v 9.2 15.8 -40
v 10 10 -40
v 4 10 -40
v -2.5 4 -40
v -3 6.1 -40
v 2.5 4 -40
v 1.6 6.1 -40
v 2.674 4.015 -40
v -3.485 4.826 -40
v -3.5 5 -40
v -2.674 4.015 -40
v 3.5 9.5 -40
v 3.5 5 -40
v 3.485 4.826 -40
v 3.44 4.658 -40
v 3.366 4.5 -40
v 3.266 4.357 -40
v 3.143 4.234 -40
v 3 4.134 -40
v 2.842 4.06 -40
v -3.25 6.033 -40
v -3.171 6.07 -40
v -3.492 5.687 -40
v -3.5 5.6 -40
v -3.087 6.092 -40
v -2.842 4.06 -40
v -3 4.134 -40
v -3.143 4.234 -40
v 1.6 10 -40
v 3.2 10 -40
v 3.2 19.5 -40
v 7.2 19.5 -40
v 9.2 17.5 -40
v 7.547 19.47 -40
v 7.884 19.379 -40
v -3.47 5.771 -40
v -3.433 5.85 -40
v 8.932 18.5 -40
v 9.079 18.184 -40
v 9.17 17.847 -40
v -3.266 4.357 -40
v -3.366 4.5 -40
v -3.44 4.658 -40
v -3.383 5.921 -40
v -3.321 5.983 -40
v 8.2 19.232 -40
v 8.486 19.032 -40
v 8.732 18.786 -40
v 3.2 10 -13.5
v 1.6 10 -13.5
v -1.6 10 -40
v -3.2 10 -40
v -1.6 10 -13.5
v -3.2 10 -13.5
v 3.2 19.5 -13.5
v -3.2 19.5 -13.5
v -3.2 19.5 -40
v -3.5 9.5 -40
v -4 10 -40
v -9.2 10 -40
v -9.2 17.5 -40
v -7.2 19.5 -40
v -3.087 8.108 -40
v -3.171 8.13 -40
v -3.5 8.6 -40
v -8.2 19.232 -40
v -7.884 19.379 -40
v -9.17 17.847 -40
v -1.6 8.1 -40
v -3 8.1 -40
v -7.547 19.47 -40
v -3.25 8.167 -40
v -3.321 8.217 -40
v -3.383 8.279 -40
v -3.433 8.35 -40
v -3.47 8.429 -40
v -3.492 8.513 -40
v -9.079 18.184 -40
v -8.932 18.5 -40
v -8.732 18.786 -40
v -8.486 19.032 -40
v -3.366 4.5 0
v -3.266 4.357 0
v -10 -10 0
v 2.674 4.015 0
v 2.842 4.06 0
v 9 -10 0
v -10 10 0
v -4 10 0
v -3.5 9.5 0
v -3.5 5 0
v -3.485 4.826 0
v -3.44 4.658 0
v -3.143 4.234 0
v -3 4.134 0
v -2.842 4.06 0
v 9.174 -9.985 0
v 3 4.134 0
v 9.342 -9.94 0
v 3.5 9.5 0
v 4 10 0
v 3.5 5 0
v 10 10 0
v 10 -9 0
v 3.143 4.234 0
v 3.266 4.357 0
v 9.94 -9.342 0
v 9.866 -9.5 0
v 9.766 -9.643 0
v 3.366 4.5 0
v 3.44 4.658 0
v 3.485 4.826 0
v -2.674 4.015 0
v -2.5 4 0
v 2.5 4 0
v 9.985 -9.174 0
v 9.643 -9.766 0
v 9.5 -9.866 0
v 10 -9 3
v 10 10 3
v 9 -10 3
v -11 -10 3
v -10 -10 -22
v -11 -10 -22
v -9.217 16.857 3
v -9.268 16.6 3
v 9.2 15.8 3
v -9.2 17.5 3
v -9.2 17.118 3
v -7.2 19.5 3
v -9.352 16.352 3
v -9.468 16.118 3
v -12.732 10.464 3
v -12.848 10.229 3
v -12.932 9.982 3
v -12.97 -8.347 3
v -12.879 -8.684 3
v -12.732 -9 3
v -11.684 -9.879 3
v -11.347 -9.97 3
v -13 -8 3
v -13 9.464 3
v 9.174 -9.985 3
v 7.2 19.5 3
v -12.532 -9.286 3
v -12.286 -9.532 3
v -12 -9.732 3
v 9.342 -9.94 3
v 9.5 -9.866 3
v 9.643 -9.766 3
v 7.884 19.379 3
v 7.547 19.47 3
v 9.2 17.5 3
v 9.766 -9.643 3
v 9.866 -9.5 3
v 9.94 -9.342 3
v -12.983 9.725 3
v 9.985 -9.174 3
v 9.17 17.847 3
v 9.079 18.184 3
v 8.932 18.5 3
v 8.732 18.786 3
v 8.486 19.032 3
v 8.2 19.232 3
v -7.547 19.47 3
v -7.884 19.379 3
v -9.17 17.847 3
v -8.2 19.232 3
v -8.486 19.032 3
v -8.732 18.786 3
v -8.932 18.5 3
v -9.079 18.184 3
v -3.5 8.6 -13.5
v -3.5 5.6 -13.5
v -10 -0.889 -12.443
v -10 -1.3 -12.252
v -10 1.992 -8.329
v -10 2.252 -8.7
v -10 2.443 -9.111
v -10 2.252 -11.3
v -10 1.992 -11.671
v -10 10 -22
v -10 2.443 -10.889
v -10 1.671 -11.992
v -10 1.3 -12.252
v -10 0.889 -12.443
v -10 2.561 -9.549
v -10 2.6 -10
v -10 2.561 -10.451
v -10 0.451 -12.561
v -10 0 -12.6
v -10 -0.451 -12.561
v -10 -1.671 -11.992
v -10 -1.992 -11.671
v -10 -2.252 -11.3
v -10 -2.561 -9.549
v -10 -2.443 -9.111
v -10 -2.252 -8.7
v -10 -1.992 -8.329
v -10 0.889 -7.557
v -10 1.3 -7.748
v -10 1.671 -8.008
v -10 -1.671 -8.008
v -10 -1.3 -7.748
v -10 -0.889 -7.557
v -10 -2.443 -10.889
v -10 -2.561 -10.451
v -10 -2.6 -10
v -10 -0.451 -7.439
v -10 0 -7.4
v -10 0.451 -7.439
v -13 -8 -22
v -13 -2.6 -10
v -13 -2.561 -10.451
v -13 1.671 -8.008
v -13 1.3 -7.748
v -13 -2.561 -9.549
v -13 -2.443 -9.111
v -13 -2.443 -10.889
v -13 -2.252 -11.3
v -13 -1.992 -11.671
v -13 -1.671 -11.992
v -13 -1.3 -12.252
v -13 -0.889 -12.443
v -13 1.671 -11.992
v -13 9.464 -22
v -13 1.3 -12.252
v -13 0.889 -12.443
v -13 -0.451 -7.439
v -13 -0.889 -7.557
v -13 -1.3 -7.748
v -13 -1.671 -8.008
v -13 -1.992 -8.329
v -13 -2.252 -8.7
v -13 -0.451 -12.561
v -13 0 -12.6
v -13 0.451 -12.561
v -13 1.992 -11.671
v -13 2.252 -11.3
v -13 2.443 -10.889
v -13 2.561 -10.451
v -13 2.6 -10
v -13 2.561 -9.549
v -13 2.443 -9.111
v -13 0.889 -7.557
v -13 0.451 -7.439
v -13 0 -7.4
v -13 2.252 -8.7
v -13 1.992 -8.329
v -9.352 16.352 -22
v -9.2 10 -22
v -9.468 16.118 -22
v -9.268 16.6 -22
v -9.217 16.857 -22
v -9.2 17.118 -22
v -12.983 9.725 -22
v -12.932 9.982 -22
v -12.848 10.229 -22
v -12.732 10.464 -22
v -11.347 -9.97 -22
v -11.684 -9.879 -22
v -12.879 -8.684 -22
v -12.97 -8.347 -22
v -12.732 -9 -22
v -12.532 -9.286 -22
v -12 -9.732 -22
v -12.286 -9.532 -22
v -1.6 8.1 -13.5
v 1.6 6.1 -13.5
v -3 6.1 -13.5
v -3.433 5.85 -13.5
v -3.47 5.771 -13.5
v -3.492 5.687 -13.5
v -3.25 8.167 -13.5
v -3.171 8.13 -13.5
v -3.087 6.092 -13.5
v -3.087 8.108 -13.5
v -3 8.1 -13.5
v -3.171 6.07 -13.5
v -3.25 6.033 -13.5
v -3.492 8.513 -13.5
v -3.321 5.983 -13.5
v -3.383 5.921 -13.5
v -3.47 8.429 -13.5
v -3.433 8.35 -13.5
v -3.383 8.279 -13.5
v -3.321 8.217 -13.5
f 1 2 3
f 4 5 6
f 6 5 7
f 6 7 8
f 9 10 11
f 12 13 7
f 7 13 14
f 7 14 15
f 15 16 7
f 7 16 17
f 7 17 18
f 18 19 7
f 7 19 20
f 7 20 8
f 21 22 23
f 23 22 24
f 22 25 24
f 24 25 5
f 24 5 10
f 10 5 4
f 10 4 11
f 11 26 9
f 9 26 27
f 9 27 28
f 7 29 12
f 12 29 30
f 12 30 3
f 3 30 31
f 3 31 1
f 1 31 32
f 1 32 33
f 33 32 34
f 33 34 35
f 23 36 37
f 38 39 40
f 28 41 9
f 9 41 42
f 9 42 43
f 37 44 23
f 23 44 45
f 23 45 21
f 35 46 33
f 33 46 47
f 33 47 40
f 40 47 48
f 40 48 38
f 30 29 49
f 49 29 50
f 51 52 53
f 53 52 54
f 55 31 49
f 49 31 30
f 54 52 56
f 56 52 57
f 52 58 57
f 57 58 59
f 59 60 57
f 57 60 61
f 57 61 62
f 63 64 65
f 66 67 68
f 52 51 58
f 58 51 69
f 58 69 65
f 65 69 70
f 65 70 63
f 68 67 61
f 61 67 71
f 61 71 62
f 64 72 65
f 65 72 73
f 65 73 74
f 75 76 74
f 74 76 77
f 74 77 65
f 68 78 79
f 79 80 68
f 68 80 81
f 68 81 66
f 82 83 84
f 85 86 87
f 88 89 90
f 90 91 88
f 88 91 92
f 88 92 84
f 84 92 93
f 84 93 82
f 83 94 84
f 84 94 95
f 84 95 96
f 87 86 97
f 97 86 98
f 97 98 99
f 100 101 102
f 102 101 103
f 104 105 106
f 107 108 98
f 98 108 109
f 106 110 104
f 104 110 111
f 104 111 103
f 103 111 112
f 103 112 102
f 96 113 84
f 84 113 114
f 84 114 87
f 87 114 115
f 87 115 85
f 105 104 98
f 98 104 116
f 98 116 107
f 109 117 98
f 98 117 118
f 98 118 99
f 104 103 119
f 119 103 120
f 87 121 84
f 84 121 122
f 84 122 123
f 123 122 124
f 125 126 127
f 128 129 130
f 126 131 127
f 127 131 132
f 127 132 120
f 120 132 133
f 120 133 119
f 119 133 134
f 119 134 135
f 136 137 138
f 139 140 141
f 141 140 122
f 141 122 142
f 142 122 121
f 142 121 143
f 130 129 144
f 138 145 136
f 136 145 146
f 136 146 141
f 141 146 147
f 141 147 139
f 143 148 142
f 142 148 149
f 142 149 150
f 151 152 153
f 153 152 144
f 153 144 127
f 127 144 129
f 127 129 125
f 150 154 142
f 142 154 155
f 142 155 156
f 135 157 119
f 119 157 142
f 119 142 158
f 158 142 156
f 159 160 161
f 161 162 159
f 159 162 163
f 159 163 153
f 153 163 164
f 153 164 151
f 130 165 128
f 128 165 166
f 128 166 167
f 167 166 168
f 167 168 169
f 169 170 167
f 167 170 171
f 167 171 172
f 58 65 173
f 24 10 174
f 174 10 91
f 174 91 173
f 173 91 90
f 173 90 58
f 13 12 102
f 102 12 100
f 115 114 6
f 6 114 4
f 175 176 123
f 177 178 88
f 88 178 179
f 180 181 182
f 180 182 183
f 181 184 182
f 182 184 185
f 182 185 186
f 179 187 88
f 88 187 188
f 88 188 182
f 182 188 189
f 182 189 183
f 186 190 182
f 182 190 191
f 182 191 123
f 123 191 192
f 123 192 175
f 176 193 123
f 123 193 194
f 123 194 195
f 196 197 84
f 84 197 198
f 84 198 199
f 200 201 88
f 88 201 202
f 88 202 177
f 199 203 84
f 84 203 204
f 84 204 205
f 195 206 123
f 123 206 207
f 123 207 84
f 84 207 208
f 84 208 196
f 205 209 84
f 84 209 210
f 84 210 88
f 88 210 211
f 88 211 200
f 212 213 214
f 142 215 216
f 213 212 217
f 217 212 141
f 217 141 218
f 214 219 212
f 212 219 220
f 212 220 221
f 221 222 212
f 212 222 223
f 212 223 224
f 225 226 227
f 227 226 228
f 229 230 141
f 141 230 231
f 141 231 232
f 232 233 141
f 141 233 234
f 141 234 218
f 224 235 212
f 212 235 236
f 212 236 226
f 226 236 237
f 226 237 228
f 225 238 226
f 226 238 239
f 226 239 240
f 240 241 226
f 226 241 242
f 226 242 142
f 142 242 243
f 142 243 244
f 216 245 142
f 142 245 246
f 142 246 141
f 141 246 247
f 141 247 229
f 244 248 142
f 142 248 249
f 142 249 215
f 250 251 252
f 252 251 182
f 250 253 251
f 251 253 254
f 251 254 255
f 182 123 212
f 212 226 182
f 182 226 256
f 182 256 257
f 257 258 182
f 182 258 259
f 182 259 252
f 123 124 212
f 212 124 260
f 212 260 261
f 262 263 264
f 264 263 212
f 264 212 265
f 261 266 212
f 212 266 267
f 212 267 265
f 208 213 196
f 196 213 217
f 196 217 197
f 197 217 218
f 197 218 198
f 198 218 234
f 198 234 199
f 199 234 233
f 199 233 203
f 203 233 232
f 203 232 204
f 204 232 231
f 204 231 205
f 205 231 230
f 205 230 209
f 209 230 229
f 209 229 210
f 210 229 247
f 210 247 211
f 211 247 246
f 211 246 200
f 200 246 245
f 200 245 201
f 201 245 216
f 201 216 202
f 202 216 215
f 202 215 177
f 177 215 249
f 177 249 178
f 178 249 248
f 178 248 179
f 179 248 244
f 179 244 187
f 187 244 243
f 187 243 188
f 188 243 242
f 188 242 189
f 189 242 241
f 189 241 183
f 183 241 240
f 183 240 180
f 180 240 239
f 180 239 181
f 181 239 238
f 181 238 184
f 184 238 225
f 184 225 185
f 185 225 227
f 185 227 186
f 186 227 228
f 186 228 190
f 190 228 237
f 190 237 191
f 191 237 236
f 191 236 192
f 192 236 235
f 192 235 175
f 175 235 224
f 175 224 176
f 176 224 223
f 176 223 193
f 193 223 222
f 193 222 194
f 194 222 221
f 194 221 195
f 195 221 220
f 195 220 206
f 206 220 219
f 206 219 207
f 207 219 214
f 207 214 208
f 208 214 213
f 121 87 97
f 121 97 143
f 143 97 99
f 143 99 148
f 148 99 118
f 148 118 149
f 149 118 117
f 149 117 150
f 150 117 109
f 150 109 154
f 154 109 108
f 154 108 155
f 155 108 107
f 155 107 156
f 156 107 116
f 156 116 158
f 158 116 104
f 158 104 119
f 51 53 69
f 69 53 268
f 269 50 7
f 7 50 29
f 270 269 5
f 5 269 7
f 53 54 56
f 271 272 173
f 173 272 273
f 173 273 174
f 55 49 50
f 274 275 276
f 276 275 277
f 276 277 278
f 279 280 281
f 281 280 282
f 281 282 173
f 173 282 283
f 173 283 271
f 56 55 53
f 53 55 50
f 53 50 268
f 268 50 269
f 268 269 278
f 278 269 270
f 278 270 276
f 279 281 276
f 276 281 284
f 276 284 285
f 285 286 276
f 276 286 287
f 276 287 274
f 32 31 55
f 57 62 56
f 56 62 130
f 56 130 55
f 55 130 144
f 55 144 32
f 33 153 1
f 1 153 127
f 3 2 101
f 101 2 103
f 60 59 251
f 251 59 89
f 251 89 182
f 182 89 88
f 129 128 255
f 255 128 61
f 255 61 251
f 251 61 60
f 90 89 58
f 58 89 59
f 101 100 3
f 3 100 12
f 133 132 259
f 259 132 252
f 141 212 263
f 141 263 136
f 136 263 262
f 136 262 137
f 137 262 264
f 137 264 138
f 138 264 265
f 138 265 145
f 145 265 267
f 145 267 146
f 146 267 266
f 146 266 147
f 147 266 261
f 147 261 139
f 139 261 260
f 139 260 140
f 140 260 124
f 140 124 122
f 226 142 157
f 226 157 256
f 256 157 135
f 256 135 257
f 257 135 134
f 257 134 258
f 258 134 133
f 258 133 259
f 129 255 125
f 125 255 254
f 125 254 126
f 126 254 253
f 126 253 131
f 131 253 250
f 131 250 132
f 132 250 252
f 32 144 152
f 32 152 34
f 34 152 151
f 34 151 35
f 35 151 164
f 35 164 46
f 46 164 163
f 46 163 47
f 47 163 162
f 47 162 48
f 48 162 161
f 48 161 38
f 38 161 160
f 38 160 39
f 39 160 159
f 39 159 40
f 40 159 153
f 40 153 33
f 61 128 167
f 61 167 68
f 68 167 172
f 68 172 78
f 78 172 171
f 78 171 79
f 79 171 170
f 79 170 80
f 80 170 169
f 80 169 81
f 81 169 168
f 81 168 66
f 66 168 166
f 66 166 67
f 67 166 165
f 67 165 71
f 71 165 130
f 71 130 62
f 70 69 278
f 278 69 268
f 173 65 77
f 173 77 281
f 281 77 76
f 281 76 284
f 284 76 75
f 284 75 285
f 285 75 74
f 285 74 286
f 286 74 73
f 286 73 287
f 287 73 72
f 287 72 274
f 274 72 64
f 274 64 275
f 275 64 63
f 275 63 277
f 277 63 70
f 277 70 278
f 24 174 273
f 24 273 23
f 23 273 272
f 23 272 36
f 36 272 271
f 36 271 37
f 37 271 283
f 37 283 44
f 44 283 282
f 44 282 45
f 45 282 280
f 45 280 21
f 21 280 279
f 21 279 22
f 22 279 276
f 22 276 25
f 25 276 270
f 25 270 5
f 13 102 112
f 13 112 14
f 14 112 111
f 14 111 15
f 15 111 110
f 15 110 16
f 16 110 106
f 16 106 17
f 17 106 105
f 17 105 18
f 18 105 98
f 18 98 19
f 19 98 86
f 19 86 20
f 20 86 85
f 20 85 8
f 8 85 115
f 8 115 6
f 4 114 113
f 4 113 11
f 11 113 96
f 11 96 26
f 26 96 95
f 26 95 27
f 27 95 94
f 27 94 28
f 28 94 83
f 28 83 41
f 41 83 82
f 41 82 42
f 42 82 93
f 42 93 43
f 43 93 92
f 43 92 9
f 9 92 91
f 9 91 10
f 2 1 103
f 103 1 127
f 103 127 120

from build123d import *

# Parameters (mm, degrees)
SKETCH_1_W          = 20
SKETCH_1_H          = 20
EXTRUDE_1_DEPTH     = 3
SKETCH_2_W          = 7
SKETCH_2_H          = 6
EXTRUDE_2_DEPTH     = 40
SKETCH_3_W          = 3
SKETCH_3_H          = 20
EXTRUDE_3_DEPTH     = 25
CUT_EXTRUDE_1_REACH = 49.212
SKETCH_4_R          = 2.6
FILLET_1_R          = 1
SKETCH_5_W          = 3.2
SKETCH_5_H          = 3.9
CUT_EXTRUDE_2_DEPTH = 30
SKETCH_6_W          = 6
SKETCH_6_H          = 9.5
EXTRUDE_4_DEPTH     = 43
CHAMFER_1_SIZE      = 0.5
SKETCH_7_W          = 6.4
SKETCH_7_H          = 9.5
EXTRUDE_5_DEPTH     = 16.5
EXTRUDE_6_DEPTH     = 25
FILLET_2_R          = 2
SKETCH_10_W         = 1.9
SKETCH_10_H         = 2
CUT_EXTRUDE_3_DEPTH = 26.5
FILLET_3_R          = 0.5
FILLET_4_R          = 1
EXTRUDE_7_DEPTH     = 43


with BuildPart() as part:
    # ｽｹｯﾁ1 → ﾎﾞｽ - 押し出し1 (new body)
    with BuildSketch(Plane.XY):
        Rectangle(SKETCH_1_W, SKETCH_1_H)
    extrude(amount=EXTRUDE_1_DEPTH)

    # ｽｹｯﾁ2 → ﾎﾞｽ - 押し出し2 (add)
    with BuildSketch(Plane(origin=(0, 0, 0), x_dir=(-1, 0, 0), z_dir=(0, 0, -1))):
        with Locations((0, 7)):
            Rectangle(SKETCH_2_W, SKETCH_2_H)
    extrude(amount=EXTRUDE_2_DEPTH)

    # ｽｹｯﾁ3 → ﾎﾞｽ - 押し出し3 (add)
    with BuildSketch(Plane.XY.offset(3)):
        with Locations((-11.5, 0)):
            Rectangle(SKETCH_3_W, SKETCH_3_H)
    extrude(amount=-EXTRUDE_3_DEPTH)

    # ｽｹｯﾁ4 → ｶｯﾄ - 押し出し1 (cut, up to next)
    with BuildSketch(Plane(origin=(-13, 0, 0), x_dir=(0, 0, -1), z_dir=(1, 0, 0)), mode=Mode.PRIVATE) as cut_extrude_1_sk1:
        with Locations(Location((10, 0, 0), (0, 0, 90))):
            Circle(SKETCH_4_R)
    cut_extrude_1_tool1 = extrude(cut_extrude_1_sk1.sketch, amount=CUT_EXTRUDE_1_REACH, mode=Mode.PRIVATE) & part.part
    add(cut_extrude_1_tool1.solids().sort_by_distance((-13, 0, -10))[0], mode=Mode.SUBTRACT)

    # ﾌｨﾚｯﾄ1
    fillet_1_edges = [part.edges().sort_by_distance(p)[0] for p in [
        (10, -10, 1.5),
    ]]
    fillet(fillet_1_edges, radius=FILLET_1_R)

    # ｽｹｯﾁ5 → ｶｯﾄ - 押し出し2 (cut)
    with BuildSketch(Plane(origin=(0, 0, -13.5), x_dir=(-1, 0, 0), z_dir=(0, 0, -1))):
        with Locations((0, 8.05)):
            Rectangle(SKETCH_5_W, SKETCH_5_H)
    extrude(amount=CUT_EXTRUDE_2_DEPTH, mode=Mode.SUBTRACT)

    # ｽｹｯﾁ6 → ﾎﾞｽ - 押し出し4 (add)
    with BuildSketch(Plane.XY.offset(3)):
        with Locations((6.2, 14.75)):
            Rectangle(SKETCH_6_W, SKETCH_6_H)
        with Locations((-6.2, 14.75)):
            Rectangle(SKETCH_6_W, SKETCH_6_H)
    extrude(amount=-EXTRUDE_4_DEPTH)

    # 面取り1
    chamfer_1_edges = [part.edges().sort_by_distance(p)[0] for p in [
        (-3.5, 10, -20),
        (3.5, 10, -20),
    ]]
    chamfer(chamfer_1_edges, length=CHAMFER_1_SIZE)

    # ｽｹｯﾁ7 → ﾎﾞｽ - 押し出し5 (add)
    with BuildSketch(Plane.XY.offset(3)):
        with Locations((0, 14.75)):
            Rectangle(SKETCH_7_W, SKETCH_7_H)
    extrude(amount=-EXTRUDE_5_DEPTH)

    # ｽｹｯﾁ8 → ﾎﾞｽ - 押し出し6 (add)
    with BuildSketch(Plane.XY.offset(3)):
        Polygon((-13, 10), (-9.2, 10), (-9.2, 16.581793069), align=None)
    extrude(amount=-EXTRUDE_6_DEPTH)

    # ﾌｨﾚｯﾄ2
    fillet_2_edges = [part.edges().sort_by_distance(p)[0] for p in [
        (-9.2, 16.581793069, -9.5),
        (-13, -10, -9.5),
        (-13, 10, -9.5),
        (9.2, 19.5, -18.5),
        (-9.2, 19.5, -18.5),
    ]]
    fillet(fillet_2_edges, radius=FILLET_2_R)

    # ｽｹｯﾁ10 → ｶｯﾄ - 押し出し3 (cut)
    with BuildSketch(Plane(origin=(0, 0, -40), x_dir=(-1, 0, 0), z_dir=(0, 0, -1))):
        with Locations((2.55, 7.1)):
            Rectangle(SKETCH_10_W, SKETCH_10_H)
    extrude(amount=-CUT_EXTRUDE_3_DEPTH, mode=Mode.SUBTRACT)

    # ﾌｨﾚｯﾄ3
    fillet_3_edges = [part.edges().sort_by_distance(p)[0] for p in [
        (-3.5, 6.1, -26.75),
        (-3.5, 8.1, -26.75),
    ]]
    fillet(fillet_3_edges, radius=FILLET_3_R)

    # ﾌｨﾚｯﾄ4
    fillet_4_edges = [part.edges().sort_by_distance(p)[0] for p in [
        (-3.5, 4, -20),
        (3.5, 4, -20),
    ]]
    fillet(fillet_4_edges, radius=FILLET_4_R)

    # ｽｹｯﾁ9 → ﾎﾞｽ - 押し出し7 (add)
    with BuildSketch(Plane.XY.offset(3)):
        Polygon((10, 10), (9.2, 10), (9.2, 15.8), align=None)
    extrude(amount=-EXTRUDE_7_DEPTH)


solid = part.part
